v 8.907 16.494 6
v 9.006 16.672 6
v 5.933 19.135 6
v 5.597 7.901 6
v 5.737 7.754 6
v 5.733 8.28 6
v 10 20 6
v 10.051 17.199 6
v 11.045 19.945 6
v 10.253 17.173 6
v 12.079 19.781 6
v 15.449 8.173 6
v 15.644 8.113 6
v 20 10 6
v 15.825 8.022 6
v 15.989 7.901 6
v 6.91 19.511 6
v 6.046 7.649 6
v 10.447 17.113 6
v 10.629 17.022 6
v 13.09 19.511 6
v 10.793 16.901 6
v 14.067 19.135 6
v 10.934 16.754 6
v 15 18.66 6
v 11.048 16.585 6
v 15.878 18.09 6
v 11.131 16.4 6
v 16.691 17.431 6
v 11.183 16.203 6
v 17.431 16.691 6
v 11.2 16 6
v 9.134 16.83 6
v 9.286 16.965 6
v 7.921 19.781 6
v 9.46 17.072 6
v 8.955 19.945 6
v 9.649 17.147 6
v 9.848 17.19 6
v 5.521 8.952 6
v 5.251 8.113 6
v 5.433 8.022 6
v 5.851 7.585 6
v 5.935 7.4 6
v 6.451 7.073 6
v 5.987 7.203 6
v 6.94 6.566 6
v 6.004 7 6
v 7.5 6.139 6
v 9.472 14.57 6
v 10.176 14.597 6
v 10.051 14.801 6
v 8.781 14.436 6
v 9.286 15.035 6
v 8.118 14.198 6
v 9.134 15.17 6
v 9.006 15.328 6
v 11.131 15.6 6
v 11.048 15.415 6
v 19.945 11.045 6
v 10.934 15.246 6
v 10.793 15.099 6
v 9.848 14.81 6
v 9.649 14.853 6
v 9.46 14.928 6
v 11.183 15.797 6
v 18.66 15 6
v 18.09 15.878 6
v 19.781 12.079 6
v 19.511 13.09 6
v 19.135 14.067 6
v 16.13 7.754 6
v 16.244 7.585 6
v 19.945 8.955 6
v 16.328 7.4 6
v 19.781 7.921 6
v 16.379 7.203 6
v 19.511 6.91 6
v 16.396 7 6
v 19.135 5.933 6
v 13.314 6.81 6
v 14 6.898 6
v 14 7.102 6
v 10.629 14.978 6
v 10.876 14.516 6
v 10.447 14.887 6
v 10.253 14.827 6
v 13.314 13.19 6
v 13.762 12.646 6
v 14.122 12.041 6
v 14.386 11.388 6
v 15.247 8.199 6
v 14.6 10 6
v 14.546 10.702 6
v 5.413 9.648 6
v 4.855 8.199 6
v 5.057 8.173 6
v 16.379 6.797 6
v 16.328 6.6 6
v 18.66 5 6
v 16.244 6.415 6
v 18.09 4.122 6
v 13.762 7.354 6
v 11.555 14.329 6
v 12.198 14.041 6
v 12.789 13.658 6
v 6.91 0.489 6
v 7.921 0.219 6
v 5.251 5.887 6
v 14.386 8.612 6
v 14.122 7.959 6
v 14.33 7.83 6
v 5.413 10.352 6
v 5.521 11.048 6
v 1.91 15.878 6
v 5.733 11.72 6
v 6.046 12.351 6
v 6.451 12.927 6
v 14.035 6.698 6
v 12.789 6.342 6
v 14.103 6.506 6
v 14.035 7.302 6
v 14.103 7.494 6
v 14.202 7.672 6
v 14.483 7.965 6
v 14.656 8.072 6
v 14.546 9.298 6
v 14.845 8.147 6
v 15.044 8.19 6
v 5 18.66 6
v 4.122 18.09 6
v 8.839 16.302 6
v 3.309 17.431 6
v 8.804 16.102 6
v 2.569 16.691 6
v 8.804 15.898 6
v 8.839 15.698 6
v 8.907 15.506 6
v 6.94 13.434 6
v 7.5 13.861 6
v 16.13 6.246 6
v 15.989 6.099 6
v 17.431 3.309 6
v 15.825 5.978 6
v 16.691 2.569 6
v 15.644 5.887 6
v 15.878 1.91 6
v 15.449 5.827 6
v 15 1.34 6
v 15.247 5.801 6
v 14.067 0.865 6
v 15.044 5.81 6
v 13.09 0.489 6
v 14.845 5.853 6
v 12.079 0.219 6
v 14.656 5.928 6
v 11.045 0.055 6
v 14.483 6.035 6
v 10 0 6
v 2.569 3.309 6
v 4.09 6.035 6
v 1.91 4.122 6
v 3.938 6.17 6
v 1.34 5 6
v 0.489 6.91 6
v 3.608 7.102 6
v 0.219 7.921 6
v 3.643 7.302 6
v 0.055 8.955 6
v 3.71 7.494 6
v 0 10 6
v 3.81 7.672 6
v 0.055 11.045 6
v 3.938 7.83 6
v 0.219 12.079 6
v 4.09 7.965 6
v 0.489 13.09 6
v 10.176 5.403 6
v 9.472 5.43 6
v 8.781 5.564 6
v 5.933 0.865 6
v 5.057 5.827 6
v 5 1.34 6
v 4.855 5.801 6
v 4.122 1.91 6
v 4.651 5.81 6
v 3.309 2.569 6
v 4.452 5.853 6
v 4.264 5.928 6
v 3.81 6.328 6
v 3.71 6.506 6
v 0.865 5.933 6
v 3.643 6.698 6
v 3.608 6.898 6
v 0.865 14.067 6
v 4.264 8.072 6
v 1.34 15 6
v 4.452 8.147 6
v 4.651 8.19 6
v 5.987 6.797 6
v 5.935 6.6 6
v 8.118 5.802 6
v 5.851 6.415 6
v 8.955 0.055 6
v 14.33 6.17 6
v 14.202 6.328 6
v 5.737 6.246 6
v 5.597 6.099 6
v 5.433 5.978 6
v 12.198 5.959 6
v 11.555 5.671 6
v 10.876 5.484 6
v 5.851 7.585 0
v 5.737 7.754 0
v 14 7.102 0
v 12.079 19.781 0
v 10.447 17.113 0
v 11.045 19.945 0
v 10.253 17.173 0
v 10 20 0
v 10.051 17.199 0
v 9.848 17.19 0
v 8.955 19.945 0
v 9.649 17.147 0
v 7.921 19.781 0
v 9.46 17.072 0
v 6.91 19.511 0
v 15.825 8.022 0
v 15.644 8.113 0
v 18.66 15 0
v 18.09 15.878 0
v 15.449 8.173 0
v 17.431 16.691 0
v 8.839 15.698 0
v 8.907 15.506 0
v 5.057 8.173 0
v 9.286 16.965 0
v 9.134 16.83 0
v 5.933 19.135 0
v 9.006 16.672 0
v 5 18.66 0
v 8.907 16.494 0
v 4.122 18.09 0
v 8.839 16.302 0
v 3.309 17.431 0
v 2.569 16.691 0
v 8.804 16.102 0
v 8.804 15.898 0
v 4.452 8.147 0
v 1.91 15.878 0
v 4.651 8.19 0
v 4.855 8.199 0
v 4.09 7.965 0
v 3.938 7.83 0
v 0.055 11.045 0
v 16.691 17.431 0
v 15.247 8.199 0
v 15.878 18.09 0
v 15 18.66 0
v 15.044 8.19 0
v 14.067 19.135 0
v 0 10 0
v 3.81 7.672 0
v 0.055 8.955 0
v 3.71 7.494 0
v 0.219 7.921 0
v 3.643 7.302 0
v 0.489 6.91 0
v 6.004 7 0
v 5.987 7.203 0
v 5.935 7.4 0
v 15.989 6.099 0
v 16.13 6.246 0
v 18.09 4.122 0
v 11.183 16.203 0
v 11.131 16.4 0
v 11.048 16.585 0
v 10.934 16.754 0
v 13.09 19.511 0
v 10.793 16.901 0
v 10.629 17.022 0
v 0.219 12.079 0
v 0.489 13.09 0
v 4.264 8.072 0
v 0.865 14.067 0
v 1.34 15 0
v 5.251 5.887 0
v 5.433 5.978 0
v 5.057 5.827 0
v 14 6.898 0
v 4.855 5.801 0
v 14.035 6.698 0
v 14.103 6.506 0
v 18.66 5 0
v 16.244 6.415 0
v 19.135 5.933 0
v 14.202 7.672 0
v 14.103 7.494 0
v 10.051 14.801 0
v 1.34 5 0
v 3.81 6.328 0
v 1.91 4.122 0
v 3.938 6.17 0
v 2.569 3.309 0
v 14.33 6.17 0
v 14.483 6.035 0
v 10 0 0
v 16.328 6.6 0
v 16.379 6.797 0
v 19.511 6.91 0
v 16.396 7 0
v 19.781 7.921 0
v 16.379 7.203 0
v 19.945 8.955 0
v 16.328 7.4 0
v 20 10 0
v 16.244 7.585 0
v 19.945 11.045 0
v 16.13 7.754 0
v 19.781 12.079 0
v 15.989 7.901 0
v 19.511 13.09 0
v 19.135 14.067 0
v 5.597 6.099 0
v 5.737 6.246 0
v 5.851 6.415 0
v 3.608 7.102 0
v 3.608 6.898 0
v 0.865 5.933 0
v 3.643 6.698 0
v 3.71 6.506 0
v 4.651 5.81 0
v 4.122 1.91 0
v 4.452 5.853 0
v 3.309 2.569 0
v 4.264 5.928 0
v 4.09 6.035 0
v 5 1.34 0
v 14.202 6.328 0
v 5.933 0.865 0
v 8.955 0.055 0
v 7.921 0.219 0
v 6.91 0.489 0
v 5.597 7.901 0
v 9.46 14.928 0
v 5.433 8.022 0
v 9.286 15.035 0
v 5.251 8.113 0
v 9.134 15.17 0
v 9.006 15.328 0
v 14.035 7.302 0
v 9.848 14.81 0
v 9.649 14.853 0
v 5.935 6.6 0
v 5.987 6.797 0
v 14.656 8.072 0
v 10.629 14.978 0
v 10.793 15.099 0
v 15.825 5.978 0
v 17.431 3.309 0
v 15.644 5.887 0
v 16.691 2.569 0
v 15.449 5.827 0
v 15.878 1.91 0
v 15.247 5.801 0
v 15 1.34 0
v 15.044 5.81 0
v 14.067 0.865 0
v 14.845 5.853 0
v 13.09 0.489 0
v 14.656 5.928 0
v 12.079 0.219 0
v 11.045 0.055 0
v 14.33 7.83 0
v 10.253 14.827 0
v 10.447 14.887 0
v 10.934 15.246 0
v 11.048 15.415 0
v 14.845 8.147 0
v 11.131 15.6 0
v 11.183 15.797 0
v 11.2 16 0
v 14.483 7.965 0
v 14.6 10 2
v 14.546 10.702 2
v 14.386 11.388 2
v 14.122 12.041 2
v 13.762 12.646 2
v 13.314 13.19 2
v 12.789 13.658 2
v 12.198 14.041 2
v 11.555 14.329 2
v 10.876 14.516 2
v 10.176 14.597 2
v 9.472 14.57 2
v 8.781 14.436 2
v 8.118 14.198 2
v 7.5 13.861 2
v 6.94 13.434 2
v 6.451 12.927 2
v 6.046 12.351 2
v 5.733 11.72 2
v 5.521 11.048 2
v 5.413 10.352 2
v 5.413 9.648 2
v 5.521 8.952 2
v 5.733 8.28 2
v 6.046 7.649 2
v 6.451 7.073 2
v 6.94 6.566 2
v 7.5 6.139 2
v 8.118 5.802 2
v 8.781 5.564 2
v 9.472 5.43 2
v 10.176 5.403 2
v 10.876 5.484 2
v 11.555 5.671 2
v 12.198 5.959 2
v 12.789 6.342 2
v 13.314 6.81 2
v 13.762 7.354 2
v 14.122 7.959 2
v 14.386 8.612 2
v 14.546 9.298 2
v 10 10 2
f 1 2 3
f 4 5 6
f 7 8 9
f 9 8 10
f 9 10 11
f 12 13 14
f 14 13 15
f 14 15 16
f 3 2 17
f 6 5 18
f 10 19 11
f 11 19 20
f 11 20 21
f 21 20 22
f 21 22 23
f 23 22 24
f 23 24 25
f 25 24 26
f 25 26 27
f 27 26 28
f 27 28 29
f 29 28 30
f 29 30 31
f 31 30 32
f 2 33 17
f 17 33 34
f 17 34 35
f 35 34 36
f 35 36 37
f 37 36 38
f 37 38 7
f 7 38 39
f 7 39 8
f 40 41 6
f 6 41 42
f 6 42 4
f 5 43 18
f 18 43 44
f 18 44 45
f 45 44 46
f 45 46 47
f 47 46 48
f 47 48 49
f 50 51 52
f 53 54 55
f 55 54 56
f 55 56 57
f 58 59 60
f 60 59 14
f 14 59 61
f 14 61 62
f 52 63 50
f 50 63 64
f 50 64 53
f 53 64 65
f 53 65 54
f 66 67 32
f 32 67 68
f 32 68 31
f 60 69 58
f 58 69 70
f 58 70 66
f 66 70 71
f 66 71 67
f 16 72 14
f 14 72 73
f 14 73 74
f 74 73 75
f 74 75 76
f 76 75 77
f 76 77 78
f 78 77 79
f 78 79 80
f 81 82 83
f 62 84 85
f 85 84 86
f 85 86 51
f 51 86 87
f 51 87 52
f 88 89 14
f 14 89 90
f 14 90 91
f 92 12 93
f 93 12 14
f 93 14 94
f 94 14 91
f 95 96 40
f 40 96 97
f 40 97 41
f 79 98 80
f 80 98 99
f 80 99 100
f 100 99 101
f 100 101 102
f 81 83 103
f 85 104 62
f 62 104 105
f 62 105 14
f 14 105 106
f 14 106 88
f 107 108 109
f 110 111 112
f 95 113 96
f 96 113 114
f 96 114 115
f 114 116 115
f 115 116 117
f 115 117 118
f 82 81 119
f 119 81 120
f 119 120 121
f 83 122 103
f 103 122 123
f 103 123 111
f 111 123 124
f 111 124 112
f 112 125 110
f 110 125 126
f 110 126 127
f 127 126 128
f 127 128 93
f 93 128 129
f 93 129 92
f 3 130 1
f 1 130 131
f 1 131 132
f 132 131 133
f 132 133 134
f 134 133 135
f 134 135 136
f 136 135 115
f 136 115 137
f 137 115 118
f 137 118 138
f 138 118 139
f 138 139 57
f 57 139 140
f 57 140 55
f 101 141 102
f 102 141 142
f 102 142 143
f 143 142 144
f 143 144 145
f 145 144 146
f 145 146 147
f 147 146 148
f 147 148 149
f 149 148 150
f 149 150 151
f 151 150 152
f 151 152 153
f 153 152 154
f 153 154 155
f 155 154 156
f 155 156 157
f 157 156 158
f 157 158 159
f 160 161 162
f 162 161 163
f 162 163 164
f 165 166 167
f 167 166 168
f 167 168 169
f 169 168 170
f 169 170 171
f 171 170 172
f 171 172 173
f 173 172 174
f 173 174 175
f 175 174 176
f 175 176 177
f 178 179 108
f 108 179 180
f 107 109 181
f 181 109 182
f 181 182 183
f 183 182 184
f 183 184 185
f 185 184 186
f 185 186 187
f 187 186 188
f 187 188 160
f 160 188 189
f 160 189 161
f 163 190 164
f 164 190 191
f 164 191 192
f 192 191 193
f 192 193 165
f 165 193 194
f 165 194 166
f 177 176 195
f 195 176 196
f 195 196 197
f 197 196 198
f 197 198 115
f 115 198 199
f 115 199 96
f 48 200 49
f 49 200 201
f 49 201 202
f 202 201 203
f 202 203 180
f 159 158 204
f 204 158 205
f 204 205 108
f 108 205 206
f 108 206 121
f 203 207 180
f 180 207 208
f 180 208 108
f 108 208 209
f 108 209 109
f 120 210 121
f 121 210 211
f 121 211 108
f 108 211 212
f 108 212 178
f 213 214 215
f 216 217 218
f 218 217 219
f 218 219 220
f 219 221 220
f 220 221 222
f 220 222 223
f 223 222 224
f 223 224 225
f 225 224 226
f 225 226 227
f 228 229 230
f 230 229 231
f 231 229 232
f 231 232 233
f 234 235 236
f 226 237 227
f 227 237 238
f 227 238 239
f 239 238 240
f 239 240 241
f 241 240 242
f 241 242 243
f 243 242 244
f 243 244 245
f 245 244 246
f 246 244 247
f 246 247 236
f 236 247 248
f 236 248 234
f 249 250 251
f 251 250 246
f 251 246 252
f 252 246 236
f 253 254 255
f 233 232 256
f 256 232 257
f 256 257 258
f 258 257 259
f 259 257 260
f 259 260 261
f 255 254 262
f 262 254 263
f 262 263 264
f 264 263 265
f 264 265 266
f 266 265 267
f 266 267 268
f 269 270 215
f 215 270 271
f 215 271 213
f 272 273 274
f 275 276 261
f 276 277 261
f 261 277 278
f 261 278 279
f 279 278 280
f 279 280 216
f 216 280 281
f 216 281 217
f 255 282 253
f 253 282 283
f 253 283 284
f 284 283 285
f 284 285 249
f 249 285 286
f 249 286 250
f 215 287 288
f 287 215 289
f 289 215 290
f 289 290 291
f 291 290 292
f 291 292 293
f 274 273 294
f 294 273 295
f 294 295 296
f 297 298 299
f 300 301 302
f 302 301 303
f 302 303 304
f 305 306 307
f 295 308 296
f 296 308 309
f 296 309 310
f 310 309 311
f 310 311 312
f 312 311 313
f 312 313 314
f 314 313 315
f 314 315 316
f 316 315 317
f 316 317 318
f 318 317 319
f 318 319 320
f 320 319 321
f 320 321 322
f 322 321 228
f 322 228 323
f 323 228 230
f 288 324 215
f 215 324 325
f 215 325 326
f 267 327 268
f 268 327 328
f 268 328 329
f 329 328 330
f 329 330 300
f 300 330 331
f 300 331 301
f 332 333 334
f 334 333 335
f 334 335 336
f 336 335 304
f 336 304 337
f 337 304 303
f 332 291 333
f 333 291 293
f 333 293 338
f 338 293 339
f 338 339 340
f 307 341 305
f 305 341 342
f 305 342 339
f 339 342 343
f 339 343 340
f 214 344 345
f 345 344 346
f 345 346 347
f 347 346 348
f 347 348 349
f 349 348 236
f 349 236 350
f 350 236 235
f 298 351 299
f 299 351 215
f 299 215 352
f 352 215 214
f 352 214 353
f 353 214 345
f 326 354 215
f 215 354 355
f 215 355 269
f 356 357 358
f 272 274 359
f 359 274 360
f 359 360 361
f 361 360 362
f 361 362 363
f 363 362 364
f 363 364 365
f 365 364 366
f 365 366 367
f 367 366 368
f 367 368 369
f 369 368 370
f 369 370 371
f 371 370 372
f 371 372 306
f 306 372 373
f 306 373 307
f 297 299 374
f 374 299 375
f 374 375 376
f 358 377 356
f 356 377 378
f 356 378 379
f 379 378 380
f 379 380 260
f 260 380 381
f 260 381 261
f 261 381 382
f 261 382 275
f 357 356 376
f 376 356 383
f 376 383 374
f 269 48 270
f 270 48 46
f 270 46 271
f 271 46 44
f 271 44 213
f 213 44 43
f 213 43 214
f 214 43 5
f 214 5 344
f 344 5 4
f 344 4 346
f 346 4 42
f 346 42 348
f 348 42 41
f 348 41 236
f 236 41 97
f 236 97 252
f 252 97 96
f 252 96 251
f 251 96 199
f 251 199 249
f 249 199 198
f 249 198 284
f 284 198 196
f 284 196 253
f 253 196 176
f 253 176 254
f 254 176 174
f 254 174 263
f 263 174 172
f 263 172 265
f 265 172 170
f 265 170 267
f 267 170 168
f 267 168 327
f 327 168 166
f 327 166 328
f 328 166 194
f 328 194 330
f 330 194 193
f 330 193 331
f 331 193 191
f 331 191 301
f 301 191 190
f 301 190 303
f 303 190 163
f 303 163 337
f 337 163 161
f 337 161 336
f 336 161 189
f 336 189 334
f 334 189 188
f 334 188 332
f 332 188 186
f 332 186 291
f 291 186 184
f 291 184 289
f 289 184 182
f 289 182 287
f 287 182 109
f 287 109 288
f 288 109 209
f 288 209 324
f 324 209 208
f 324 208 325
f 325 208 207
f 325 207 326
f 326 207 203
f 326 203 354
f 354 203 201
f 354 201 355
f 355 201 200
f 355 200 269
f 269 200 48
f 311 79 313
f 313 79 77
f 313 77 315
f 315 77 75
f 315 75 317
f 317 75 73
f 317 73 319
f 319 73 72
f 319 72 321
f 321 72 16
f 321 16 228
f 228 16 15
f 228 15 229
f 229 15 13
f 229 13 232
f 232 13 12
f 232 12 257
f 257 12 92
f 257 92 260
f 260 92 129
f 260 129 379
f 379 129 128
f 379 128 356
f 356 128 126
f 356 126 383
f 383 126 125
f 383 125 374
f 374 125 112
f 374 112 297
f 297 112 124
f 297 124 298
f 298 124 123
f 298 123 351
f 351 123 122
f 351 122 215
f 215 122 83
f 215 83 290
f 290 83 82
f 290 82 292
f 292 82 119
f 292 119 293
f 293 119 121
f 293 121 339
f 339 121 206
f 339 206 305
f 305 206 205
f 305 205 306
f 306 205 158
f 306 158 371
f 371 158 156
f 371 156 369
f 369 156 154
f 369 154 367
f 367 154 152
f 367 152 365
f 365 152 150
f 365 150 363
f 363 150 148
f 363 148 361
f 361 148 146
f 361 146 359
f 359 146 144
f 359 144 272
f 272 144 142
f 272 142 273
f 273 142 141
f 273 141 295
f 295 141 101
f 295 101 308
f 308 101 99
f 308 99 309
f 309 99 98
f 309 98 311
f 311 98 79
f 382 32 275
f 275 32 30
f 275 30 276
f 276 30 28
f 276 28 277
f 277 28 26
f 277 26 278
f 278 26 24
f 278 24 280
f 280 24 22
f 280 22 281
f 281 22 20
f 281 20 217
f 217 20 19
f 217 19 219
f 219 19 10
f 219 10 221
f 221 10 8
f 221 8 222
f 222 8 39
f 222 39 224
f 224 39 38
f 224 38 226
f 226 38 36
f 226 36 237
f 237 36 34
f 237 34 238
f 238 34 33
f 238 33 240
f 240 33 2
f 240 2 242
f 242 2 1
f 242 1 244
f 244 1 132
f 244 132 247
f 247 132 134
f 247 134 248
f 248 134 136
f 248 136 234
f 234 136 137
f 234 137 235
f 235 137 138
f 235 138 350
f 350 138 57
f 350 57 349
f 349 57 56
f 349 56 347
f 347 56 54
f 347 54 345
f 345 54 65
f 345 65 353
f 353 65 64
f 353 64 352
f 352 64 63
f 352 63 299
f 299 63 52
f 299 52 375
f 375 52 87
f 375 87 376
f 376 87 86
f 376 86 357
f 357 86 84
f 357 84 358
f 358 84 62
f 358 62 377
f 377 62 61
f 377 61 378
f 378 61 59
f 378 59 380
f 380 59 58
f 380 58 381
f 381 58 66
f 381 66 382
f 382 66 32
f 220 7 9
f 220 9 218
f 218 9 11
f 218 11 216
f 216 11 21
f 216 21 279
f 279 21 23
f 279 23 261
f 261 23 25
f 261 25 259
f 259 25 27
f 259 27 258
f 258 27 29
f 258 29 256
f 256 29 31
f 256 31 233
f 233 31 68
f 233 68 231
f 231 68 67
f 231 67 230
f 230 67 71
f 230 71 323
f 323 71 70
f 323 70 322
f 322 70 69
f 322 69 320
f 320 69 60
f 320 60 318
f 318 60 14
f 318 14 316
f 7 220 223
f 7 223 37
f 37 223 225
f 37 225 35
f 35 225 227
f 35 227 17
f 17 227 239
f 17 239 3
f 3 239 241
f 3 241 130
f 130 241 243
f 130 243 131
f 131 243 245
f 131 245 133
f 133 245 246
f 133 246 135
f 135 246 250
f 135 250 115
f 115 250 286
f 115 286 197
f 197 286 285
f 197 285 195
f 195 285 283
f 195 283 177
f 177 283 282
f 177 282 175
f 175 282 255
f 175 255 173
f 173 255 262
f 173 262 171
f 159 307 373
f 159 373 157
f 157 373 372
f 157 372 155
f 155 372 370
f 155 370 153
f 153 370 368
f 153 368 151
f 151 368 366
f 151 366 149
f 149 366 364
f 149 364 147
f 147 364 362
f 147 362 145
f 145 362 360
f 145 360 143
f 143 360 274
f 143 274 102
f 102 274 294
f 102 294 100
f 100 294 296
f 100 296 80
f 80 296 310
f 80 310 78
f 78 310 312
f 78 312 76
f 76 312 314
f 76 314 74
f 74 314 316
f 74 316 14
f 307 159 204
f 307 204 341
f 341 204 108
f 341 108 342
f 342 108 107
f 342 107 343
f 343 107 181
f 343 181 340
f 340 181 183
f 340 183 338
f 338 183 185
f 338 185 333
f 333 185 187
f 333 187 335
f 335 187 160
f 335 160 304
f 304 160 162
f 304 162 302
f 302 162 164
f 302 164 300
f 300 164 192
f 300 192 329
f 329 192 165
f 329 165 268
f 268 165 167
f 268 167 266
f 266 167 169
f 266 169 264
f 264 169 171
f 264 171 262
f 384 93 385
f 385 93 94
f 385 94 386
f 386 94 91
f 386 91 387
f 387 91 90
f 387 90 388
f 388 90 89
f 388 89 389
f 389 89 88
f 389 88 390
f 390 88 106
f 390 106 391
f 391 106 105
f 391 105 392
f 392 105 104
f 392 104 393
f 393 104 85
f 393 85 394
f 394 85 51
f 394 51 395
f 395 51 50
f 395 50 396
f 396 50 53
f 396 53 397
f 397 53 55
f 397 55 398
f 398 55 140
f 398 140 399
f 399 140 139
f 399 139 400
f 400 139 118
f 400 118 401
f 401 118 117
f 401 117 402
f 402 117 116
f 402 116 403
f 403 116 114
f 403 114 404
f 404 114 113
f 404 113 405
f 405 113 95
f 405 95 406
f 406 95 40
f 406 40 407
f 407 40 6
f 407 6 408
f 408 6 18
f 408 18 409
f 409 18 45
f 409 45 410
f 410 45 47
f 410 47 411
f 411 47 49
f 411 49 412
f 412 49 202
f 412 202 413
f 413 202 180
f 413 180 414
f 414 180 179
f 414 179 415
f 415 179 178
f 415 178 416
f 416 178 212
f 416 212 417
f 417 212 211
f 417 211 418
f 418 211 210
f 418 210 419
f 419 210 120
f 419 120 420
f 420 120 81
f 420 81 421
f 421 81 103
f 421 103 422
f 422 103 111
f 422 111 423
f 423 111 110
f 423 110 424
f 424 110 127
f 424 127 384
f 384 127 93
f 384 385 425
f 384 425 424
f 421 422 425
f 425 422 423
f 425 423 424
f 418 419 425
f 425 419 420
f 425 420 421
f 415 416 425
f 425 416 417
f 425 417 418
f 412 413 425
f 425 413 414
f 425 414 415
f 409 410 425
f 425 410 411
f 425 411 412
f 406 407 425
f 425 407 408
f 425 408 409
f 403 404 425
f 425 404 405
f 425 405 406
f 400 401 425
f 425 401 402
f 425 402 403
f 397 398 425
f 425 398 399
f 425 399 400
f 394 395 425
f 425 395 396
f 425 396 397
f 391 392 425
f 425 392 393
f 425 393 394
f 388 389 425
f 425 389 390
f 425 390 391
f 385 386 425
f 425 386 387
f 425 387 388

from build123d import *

# Parameters (mm, degrees)
SKETCH1_W                = 20
SKETCH1_H                = 20
SKETCH1_R                = 6
BOSS_EXTRUDE1_DEPTH      = 6
M2_CLEARANCE_HOLE1_D     = 2.4
M2_CLEARANCE_HOLE1_DEPTH = 10
M2_CLEARANCE_HOLE1_TIP   = 0.721032743
FILLET1_R                = 10
SKETCH4_R                = 4.6
CUT_EXTRUDE1_DEPTH       = 4


with BuildPart() as part:
    # Sketch1 → Boss-Extrude1 (new body)
    # profile 1 of 2: a face of its own
    with BuildSketch(Plane.XY):
        with Locations((10, 10)):
            Rectangle(SKETCH1_W, SKETCH1_H)
        with Locations((10, 10)):
            Circle(SKETCH1_R, mode=Mode.SUBTRACT)
    # profile 2 of 2: a face of its own
    with BuildSketch(Plane.XY):
        with Locations((10, 10)):
            Circle(SKETCH1_R)
    extrude(amount=BOSS_EXTRUDE1_DEPTH)

    # M2 Clearance Hole1
    with Locations(Plane.XY.offset(6)):
        with Locations((10, 16), (15.196152423, 7), (4.803847577, 7)):
            Hole(M2_CLEARANCE_HOLE1_D / 2, depth=M2_CLEARANCE_HOLE1_DEPTH)
            with Locations((0, 0, -(M2_CLEARANCE_HOLE1_DEPTH + M2_CLEARANCE_HOLE1_TIP / 2))):  # 118° drill point
                Cone(0, M2_CLEARANCE_HOLE1_D / 2, M2_CLEARANCE_HOLE1_TIP, mode=Mode.SUBTRACT)

    # Fillet1
    fillet1_edges = [part.edges().sort_by_distance(p)[0] for p in [
        (0, 0, 3),
        (20, 0, 3),
        (20, 20, 3),
        (0, 20, 3),
    ]]
    fillet(fillet1_edges, radius=FILLET1_R - 0.0001)  # a hair under: the kernel refuses the full size

    # Sketch4 → Cut-Extrude1 (cut)
    with BuildSketch(Plane.XY.offset(6)):
        with Locations((10, 10)):
            Circle(SKETCH4_R)
    extrude(amount=-CUT_EXTRUDE1_DEPTH, mode=Mode.SUBTRACT)


solid = part.part
